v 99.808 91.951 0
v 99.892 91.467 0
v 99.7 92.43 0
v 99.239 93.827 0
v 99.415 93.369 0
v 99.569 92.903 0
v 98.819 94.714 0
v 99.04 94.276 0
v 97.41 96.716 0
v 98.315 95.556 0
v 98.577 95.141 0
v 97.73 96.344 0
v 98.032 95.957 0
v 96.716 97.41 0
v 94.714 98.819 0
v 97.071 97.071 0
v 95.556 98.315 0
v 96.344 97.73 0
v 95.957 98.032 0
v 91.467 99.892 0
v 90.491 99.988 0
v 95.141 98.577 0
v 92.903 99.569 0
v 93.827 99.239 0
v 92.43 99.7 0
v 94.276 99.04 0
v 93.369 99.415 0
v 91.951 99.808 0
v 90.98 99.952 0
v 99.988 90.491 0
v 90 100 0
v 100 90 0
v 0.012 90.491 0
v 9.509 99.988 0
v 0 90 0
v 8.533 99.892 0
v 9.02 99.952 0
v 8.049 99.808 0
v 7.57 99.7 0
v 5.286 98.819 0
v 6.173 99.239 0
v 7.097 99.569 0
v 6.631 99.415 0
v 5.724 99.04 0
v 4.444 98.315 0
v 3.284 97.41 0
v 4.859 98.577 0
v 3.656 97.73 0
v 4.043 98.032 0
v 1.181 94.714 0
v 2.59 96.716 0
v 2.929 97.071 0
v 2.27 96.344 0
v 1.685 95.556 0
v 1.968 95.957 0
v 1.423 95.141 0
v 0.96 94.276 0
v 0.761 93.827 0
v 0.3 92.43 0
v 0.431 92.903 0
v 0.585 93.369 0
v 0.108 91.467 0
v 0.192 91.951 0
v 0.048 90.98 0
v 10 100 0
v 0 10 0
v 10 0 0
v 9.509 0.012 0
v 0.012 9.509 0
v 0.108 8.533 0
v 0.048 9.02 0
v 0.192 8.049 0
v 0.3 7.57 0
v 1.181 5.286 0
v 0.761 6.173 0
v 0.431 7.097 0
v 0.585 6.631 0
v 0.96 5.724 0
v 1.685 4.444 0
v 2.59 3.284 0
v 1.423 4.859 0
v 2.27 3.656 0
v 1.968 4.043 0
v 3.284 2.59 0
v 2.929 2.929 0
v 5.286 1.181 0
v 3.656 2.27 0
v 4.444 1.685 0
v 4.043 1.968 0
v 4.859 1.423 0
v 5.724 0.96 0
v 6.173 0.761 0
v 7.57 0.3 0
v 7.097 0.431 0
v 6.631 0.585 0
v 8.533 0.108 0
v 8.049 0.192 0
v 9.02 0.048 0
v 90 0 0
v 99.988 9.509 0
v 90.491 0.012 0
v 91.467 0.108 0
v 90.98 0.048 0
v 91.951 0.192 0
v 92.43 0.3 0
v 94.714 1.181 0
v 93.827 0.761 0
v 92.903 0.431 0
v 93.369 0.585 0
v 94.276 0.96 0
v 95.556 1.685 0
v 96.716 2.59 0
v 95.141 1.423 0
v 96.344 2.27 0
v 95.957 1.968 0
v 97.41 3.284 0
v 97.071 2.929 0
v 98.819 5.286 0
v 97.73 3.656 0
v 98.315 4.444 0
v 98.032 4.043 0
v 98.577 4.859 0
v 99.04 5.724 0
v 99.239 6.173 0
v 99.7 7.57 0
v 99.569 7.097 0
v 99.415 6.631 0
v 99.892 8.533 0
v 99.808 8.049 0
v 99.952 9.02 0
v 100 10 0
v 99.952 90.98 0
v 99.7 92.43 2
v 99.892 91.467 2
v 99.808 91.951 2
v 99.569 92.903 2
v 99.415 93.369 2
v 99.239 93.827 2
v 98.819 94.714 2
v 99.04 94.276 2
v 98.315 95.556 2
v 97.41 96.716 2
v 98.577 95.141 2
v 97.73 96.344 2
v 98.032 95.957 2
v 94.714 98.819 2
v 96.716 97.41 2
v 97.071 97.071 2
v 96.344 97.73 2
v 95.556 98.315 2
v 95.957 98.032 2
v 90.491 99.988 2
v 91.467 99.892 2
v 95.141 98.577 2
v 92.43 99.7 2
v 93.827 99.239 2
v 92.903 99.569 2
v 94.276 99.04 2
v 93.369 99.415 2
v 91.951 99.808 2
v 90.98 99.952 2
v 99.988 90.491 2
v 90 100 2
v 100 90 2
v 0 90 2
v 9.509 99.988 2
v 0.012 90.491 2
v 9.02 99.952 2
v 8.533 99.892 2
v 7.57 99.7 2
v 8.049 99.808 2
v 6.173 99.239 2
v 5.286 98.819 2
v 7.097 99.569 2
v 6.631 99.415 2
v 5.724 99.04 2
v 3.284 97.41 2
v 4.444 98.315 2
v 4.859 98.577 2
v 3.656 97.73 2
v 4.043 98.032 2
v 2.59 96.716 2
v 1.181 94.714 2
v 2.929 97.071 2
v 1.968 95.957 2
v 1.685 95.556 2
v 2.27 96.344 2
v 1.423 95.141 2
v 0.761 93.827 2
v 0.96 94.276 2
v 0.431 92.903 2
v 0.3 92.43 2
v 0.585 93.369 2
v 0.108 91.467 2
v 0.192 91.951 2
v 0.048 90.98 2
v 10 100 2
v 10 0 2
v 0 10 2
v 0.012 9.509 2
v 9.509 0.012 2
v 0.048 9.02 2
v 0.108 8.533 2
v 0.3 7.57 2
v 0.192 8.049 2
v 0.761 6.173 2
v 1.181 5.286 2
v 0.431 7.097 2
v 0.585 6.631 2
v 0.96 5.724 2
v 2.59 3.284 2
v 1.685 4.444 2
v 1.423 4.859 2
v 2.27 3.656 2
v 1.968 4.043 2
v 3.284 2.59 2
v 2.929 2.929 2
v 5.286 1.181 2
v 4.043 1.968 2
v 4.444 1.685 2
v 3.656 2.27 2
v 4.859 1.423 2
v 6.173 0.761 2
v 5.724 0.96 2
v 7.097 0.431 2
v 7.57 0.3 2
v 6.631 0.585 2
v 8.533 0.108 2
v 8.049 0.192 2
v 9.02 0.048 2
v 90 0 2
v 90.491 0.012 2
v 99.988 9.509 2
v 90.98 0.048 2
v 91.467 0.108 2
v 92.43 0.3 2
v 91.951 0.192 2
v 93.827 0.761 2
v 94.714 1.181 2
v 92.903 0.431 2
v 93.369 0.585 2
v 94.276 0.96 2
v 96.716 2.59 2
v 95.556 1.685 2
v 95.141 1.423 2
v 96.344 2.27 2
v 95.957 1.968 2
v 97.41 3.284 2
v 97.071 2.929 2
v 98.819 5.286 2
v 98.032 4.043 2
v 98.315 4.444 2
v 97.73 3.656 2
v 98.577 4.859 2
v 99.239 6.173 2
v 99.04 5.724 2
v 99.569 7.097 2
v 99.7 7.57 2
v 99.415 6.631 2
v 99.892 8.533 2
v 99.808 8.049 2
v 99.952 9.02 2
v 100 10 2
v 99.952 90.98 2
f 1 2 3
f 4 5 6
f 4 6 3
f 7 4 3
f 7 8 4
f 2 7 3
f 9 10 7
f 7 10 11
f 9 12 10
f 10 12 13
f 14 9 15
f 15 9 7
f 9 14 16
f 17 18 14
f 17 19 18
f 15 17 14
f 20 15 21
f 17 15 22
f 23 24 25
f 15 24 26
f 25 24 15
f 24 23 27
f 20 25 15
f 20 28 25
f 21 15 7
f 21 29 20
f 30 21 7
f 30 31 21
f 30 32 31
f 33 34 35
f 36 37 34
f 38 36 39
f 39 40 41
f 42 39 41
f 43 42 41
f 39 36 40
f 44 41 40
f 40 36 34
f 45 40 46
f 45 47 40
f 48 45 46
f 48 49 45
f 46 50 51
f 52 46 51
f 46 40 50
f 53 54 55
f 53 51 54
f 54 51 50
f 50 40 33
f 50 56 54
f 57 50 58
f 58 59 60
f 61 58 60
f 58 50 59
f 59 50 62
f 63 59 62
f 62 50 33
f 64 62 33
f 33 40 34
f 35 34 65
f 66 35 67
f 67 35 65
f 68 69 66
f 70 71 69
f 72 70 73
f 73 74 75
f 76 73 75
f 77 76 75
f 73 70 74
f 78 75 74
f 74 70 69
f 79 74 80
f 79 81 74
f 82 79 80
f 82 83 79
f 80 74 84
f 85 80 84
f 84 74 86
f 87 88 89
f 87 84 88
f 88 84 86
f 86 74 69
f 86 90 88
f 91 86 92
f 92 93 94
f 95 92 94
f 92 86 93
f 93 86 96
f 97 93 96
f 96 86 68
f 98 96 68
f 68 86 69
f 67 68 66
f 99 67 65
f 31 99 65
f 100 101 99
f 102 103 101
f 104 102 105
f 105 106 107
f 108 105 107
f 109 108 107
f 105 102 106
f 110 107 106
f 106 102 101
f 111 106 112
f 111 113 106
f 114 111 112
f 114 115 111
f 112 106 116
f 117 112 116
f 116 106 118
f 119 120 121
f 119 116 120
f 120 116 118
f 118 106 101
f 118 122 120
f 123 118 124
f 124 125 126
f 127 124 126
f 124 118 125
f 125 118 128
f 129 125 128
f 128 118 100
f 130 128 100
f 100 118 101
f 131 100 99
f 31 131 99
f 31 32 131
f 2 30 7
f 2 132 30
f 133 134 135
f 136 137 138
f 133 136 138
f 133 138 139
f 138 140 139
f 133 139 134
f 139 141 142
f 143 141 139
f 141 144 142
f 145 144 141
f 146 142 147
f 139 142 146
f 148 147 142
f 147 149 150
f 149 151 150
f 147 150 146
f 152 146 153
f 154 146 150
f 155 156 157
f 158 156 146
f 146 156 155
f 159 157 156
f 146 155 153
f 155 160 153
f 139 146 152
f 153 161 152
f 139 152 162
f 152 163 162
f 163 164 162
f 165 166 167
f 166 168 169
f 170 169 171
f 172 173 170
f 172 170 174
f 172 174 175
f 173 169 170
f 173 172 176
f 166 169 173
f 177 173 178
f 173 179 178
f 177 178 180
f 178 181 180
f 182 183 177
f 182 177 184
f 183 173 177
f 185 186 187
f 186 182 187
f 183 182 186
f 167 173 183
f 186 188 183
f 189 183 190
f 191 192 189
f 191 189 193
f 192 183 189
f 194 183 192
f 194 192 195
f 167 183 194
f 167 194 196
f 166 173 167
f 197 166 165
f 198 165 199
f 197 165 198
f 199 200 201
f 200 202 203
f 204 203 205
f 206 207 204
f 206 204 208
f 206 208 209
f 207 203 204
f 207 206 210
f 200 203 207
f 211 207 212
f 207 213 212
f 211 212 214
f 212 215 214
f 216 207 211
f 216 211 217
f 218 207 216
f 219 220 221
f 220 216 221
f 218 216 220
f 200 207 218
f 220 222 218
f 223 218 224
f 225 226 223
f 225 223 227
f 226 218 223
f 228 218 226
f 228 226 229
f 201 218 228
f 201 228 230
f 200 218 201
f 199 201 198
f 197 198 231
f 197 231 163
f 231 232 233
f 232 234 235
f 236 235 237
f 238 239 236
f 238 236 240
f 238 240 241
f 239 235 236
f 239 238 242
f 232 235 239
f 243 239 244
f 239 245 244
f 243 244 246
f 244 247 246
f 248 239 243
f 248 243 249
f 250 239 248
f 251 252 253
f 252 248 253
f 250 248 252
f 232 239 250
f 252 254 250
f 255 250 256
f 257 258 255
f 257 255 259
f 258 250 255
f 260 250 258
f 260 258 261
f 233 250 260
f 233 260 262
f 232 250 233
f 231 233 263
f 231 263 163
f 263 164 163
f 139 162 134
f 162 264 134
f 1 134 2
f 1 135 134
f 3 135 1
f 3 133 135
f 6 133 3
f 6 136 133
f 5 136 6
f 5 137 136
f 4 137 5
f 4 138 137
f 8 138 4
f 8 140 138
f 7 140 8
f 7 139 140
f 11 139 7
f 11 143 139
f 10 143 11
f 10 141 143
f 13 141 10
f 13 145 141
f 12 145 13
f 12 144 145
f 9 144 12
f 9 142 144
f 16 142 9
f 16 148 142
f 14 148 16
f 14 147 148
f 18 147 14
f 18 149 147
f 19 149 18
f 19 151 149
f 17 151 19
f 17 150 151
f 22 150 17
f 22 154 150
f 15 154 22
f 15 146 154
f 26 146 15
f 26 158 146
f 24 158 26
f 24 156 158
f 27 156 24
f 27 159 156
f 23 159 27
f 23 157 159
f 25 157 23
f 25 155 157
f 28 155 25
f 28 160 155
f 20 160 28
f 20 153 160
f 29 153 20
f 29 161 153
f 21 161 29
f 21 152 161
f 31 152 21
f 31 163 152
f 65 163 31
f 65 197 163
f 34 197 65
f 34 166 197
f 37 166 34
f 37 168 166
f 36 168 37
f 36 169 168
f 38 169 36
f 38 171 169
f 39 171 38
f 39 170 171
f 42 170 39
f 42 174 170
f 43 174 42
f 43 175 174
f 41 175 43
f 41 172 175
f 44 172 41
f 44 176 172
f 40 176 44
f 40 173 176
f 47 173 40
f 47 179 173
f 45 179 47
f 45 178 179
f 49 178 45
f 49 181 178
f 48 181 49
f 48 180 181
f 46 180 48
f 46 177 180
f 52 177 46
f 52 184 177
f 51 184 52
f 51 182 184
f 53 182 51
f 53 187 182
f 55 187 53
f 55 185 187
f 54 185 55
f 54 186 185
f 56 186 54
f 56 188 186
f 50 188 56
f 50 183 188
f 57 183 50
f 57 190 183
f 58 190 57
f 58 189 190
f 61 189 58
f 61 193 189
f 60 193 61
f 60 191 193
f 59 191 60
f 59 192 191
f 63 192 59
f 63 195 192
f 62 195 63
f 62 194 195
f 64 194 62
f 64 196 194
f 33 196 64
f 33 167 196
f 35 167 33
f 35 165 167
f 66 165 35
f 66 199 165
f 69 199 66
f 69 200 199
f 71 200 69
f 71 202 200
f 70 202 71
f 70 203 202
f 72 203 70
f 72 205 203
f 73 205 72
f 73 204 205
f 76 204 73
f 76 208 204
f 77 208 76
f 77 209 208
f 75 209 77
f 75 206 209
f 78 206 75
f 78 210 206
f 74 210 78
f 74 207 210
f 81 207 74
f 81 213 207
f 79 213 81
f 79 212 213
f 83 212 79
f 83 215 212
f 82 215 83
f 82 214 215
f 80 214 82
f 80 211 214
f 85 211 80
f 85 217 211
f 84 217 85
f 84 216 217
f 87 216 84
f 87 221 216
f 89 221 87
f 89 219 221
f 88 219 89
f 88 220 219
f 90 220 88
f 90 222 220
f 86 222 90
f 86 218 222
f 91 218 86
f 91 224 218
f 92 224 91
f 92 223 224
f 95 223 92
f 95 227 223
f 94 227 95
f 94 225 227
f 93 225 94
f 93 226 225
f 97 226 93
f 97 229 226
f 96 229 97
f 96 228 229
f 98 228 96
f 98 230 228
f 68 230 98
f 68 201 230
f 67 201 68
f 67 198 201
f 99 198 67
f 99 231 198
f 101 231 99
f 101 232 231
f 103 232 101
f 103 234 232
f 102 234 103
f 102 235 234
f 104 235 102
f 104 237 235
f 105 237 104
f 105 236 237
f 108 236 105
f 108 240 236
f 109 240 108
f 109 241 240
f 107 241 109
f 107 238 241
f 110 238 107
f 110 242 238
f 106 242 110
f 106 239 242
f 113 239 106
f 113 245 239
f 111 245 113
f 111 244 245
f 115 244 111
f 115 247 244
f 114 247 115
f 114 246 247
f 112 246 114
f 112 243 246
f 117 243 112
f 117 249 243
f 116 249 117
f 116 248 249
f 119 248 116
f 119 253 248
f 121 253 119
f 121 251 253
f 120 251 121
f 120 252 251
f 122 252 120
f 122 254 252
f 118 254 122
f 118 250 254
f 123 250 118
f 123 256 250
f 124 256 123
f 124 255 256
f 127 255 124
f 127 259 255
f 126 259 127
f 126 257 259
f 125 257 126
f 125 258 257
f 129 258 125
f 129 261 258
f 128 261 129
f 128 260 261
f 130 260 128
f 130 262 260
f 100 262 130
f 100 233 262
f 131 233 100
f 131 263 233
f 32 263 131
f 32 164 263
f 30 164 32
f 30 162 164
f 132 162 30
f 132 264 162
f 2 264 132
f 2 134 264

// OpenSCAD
$fn = 128;
// $fa = 12;

body_w = 100;
body_h = 100;
body_t = 2;
body_r = 10;

translate([body_r, body_r, 0])
linear_extrude(body_t)
minkowski() {
    square([body_w - (2 * body_r), body_h - (2 * body_r)]);
    circle(body_r);
};
